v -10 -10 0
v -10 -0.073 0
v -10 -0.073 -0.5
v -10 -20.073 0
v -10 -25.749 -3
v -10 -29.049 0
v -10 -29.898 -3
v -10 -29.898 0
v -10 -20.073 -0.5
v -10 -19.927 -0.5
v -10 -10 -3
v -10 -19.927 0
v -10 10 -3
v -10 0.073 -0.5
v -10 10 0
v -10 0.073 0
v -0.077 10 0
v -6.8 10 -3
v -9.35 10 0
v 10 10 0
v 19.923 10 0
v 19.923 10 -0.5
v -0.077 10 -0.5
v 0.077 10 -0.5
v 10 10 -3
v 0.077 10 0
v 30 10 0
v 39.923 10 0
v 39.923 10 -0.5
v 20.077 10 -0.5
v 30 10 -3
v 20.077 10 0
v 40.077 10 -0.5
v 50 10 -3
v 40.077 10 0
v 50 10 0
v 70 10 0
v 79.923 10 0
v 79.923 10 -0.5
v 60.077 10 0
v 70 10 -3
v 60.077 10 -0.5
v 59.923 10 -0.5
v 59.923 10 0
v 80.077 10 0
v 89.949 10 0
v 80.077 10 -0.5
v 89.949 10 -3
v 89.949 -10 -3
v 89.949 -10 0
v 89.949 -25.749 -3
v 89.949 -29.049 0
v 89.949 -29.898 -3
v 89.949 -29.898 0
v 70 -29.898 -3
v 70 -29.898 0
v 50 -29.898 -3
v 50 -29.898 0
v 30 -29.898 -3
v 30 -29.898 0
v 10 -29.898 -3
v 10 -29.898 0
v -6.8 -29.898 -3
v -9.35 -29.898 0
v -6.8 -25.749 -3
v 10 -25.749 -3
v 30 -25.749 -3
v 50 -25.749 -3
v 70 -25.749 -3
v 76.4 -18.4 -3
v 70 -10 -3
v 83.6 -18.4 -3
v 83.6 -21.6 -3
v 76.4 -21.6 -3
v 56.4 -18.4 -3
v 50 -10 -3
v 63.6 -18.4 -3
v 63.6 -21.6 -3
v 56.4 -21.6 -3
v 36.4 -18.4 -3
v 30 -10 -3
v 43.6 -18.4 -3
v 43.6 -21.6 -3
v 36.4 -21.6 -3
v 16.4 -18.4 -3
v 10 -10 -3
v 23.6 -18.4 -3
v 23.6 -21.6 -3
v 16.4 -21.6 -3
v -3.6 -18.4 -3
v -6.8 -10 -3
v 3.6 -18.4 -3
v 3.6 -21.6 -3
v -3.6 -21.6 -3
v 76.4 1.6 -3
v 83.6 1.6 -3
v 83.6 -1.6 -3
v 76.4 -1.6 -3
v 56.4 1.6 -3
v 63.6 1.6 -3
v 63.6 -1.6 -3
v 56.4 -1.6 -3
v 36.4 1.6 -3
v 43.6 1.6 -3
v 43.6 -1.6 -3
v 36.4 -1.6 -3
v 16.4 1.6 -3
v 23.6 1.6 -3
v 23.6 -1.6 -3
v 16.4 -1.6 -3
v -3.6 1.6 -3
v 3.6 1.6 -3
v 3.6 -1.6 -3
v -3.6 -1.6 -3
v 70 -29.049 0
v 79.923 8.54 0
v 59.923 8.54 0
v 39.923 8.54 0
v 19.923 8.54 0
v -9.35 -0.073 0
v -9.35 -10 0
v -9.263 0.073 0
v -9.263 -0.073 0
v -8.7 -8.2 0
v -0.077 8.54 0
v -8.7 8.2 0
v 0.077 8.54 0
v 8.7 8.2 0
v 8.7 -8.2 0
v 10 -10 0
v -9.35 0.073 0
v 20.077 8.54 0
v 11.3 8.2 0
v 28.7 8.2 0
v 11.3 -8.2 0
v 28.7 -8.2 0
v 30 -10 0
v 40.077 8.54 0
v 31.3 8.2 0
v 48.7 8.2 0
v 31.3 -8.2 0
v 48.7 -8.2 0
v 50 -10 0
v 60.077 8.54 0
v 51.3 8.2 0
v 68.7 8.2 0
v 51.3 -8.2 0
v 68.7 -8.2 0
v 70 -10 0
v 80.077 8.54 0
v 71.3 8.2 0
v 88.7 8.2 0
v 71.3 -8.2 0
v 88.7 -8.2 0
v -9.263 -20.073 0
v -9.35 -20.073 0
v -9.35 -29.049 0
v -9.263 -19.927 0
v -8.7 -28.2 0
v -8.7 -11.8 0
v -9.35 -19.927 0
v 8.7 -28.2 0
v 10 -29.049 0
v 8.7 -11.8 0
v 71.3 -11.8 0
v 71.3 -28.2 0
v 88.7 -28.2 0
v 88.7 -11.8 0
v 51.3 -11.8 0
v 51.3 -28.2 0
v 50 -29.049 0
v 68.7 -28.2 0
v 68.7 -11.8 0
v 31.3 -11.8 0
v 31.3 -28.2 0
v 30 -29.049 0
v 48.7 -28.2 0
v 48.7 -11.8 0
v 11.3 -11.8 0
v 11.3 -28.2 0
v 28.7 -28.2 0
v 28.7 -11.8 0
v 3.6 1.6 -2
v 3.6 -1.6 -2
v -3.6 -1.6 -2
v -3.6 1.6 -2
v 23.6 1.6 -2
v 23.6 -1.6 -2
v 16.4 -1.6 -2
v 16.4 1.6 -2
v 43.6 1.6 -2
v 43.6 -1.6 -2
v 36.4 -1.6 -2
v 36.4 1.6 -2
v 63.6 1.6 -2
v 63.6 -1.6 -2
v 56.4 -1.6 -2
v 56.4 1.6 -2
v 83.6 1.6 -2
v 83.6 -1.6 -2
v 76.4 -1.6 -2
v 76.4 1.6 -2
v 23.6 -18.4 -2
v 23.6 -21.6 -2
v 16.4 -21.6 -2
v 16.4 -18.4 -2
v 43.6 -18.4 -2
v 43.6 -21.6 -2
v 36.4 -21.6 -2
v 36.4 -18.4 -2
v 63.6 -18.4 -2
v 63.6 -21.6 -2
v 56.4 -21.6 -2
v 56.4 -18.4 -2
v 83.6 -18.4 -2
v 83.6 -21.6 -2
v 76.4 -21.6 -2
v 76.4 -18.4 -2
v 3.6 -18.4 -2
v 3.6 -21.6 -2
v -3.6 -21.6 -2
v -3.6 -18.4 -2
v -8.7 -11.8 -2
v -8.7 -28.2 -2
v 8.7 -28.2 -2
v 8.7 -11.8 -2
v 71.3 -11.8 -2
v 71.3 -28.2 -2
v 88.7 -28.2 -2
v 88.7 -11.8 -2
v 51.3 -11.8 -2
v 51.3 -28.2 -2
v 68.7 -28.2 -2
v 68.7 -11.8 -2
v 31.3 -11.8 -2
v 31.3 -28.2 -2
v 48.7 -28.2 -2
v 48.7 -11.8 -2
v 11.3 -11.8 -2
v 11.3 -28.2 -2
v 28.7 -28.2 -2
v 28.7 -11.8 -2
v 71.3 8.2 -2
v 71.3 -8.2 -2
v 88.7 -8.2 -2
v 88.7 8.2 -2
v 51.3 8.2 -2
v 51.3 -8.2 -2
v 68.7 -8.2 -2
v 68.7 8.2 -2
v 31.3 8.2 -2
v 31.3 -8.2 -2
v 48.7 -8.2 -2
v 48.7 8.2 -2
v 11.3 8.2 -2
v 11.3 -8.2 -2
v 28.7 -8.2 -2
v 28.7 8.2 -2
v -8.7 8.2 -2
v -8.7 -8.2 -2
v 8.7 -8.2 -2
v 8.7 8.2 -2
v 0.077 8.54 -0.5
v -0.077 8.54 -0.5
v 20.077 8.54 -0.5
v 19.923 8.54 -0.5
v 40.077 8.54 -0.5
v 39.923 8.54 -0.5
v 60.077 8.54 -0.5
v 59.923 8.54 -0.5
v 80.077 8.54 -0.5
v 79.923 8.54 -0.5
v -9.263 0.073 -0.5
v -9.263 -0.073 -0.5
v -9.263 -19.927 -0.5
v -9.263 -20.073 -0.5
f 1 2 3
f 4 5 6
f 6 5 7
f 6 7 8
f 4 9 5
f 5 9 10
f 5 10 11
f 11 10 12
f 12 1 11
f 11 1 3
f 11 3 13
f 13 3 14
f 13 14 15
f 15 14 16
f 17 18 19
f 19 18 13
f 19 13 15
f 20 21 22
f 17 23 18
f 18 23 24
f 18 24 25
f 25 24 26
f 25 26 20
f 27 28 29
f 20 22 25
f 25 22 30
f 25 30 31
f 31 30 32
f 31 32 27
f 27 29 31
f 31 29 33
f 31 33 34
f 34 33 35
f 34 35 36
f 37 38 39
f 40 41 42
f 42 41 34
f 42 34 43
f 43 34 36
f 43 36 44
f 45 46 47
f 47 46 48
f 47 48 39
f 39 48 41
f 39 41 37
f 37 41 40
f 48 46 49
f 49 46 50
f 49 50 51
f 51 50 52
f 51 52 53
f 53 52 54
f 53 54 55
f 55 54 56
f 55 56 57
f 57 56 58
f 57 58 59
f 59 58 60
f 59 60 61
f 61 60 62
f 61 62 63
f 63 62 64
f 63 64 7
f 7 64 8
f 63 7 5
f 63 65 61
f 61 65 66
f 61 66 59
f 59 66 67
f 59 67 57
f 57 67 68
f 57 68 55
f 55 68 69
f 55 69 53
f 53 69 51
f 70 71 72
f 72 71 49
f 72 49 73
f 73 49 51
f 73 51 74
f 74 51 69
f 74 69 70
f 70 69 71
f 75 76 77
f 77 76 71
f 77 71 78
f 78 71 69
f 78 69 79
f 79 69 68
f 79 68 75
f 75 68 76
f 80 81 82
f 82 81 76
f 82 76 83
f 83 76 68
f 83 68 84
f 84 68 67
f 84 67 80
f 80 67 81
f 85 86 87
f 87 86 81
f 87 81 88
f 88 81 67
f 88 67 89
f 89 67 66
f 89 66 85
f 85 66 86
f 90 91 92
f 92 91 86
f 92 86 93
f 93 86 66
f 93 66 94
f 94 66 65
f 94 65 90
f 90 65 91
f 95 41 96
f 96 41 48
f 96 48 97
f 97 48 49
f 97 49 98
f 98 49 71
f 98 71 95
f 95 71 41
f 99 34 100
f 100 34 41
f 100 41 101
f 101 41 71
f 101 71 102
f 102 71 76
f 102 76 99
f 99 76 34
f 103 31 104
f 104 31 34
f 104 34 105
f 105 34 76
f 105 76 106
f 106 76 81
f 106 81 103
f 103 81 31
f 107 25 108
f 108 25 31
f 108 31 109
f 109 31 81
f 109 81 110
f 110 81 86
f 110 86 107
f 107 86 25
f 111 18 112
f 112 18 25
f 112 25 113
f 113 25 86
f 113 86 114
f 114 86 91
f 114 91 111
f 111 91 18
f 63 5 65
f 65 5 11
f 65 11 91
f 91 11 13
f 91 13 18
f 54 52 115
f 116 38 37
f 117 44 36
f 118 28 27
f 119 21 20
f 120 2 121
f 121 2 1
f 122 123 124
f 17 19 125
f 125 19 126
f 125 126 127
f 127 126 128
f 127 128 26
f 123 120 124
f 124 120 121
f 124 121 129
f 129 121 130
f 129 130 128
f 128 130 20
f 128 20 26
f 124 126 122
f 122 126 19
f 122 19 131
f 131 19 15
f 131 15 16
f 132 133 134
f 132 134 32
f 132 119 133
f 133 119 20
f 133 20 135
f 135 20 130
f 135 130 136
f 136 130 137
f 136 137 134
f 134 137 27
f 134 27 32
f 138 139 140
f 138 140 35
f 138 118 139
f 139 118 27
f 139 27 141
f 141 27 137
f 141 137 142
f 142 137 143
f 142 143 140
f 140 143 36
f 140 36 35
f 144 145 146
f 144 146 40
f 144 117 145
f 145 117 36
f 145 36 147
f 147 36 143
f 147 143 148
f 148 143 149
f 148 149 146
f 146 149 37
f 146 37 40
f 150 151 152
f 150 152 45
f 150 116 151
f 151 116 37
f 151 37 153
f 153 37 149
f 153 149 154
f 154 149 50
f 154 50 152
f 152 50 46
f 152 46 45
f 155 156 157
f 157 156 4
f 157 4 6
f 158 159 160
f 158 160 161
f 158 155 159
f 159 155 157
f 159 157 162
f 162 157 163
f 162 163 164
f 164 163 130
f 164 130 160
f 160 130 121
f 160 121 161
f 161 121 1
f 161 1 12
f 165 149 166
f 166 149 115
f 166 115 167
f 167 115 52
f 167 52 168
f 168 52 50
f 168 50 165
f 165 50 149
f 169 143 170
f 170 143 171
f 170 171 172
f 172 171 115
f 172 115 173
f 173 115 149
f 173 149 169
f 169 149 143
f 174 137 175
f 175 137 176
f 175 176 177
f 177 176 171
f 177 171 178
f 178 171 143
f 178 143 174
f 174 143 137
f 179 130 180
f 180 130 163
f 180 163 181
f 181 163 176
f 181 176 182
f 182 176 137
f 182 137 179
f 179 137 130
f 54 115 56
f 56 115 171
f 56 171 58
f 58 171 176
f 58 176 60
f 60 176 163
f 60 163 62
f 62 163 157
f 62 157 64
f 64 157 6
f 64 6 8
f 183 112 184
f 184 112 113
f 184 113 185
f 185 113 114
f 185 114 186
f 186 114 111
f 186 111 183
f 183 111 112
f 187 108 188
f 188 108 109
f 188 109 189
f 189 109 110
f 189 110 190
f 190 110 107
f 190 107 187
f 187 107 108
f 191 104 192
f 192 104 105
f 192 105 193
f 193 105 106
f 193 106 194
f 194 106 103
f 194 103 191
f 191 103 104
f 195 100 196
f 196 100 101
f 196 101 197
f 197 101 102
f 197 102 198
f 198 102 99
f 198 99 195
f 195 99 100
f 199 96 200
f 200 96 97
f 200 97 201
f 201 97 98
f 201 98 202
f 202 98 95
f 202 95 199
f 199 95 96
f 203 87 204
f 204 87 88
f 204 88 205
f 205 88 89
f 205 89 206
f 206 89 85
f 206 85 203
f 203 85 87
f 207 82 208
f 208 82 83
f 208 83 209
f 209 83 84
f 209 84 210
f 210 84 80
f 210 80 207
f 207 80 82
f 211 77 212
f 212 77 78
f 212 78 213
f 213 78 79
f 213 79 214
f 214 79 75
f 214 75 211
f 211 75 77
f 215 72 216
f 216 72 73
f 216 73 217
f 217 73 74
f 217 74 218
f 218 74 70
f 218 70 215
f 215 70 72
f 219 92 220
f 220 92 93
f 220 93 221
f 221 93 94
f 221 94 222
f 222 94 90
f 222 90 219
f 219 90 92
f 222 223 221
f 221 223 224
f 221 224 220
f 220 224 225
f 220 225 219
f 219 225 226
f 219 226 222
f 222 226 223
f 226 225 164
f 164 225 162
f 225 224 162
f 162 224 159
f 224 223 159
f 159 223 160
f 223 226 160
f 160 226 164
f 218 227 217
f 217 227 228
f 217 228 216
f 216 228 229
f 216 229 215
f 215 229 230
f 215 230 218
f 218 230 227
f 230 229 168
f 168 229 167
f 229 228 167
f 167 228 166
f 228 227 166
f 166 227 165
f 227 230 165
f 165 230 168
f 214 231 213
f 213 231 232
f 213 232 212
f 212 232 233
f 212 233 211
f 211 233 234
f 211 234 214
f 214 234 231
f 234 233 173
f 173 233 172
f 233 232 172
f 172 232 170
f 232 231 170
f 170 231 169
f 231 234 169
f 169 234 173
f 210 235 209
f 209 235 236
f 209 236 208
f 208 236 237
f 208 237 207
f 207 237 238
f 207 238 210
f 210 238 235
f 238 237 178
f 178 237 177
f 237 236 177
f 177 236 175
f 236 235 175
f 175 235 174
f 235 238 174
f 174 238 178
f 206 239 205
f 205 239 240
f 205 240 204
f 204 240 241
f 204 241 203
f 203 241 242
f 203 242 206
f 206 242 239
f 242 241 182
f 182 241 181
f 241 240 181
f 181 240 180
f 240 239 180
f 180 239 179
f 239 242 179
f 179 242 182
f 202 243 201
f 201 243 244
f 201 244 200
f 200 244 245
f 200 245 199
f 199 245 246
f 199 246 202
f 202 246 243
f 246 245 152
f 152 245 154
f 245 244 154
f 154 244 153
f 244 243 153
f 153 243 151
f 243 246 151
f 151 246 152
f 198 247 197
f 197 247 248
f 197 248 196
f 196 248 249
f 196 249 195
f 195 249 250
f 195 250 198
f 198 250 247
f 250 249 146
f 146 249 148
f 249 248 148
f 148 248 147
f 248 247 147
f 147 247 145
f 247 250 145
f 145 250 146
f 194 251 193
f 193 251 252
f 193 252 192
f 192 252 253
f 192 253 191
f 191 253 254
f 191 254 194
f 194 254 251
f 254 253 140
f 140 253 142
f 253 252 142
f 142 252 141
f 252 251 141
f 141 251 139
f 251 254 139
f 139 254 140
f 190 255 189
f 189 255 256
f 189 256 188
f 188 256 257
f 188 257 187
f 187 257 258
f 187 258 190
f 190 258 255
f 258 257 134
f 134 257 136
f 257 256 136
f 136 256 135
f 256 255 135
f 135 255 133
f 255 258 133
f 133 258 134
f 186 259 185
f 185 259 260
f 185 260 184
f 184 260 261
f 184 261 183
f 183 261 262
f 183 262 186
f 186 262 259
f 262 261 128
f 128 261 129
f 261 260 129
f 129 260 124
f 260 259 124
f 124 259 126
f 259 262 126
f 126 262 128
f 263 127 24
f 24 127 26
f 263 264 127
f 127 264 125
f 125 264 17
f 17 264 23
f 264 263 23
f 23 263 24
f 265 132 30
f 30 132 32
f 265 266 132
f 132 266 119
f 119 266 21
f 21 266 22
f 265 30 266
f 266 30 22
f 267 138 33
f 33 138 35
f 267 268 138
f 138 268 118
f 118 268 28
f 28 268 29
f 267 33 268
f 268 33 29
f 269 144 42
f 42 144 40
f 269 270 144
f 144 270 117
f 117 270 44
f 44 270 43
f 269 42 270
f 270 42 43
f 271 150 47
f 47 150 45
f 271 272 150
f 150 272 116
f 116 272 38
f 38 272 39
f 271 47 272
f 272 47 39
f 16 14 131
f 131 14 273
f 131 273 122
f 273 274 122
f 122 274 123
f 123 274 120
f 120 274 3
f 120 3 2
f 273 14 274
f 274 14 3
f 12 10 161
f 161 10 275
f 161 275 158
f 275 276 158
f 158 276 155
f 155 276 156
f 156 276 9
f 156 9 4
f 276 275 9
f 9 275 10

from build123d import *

# Parameters (mm, degrees)
TABLE_W                      = 99.948937608
TABLE_H                      = 39.897875217
BOSS_EXTRU_1_DEPTH           = 3
PINSPACE_W                   = 7.2
PINSPACE_H                   = 3.2
ENL_V_MAT_EXTRU_1_DEPTH      = 1
ENL_V_MAT_EXTRU_1_DEPTH_BACK = 4
ALCOVE_W                     = 17.4
ALCOVE_H                     = 16.4
ENL_V_MAT_EXTRU_2_DEPTH      = 2
ESQUISSE4_W                  = 0.15303985
ESQUISSE4_H                  = 1.630533914
ESQUISSE4_W_2                = 0.844812891
ESQUISSE4_H_2                = 0.146902924
ENL_V_MAT_EXTRU_3_DEPTH      = 0.5


with BuildPart() as part:
    # table → Boss.-Extru.1 (new body)
    with BuildSketch(Plane.XY):
        with Locations((39.974468804, -9.948937609)):
            Rectangle(TABLE_W, TABLE_H)
    extrude(amount=-BOSS_EXTRU_1_DEPTH)

    # pinspace → Enlèv. mat.-Extru.1 (cut, two sides)
    with BuildSketch(Plane.XY) as enl_v_mat_extru_1_sk:
        with Locations((20, 0)):
            Rectangle(PINSPACE_W, PINSPACE_H)
        Rectangle(PINSPACE_W, PINSPACE_H)
        with Locations((40, 0)):
            Rectangle(PINSPACE_W, PINSPACE_H)
        with Locations((60, 0)):
            Rectangle(PINSPACE_W, PINSPACE_H)
        with Locations((80, 0)):
            Rectangle(PINSPACE_W, PINSPACE_H)
        with Locations((20, -20)):
            Rectangle(PINSPACE_W, PINSPACE_H)
        with Locations((40, -20)):
            Rectangle(PINSPACE_W, PINSPACE_H)
        with Locations((60, -20)):
            Rectangle(PINSPACE_W, PINSPACE_H)
        with Locations((80, -20)):
            Rectangle(PINSPACE_W, PINSPACE_H)
        with Locations((0, -20)):
            Rectangle(PINSPACE_W, PINSPACE_H)
    extrude(amount=ENL_V_MAT_EXTRU_1_DEPTH, mode=Mode.SUBTRACT)
    extrude(enl_v_mat_extru_1_sk.sketch, amount=-ENL_V_MAT_EXTRU_1_DEPTH_BACK, mode=Mode.SUBTRACT)

    # alcove → Enlèv. mat.-Extru.2 (cut)
    with BuildSketch(Plane.XY):
        with Locations((20, 0)):
            Rectangle(ALCOVE_W, ALCOVE_H)
        Rectangle(ALCOVE_W, ALCOVE_H)
        with Locations((40, 0)):
            Rectangle(ALCOVE_W, ALCOVE_H)
        with Locations((60, 0)):
            Rectangle(ALCOVE_W, ALCOVE_H)
        with Locations((80, 0)):
            Rectangle(ALCOVE_W, ALCOVE_H)
        with Locations((20, -20)):
            Rectangle(ALCOVE_W, ALCOVE_H)
        with Locations((40, -20)):
            Rectangle(ALCOVE_W, ALCOVE_H)
        with Locations((60, -20)):
            Rectangle(ALCOVE_W, ALCOVE_H)
        with Locations((80, -20)):
            Rectangle(ALCOVE_W, ALCOVE_H)
        with Locations((0, -20)):
            Rectangle(ALCOVE_W, ALCOVE_H)
    extrude(amount=-ENL_V_MAT_EXTRU_2_DEPTH, mode=Mode.SUBTRACT)

    # Esquisse4 → Enlèv. mat.-Extru.3 (cut)
    with BuildSketch(Plane.XY):
        with Locations((0, 9.355457885)):
            Rectangle(ESQUISSE4_W, ESQUISSE4_H)
        with Locations((20, 9.355457885)):
            Rectangle(ESQUISSE4_W, ESQUISSE4_H)
        with Locations((40, 9.355457885)):
            Rectangle(ESQUISSE4_W, ESQUISSE4_H)
        with Locations((60, 9.355457885)):
            Rectangle(ESQUISSE4_W, ESQUISSE4_H)
        with Locations((80, 9.355457885)):
            Rectangle(ESQUISSE4_W, ESQUISSE4_H)
        with Locations((-9.685415881, 0)):
            Rectangle(ESQUISSE4_W_2, ESQUISSE4_H_2)
        with Locations((-9.685415881, -20)):
            Rectangle(ESQUISSE4_W_2, ESQUISSE4_H_2)
    extrude(amount=-ENL_V_MAT_EXTRU_3_DEPTH, mode=Mode.SUBTRACT)


solid = part.part
